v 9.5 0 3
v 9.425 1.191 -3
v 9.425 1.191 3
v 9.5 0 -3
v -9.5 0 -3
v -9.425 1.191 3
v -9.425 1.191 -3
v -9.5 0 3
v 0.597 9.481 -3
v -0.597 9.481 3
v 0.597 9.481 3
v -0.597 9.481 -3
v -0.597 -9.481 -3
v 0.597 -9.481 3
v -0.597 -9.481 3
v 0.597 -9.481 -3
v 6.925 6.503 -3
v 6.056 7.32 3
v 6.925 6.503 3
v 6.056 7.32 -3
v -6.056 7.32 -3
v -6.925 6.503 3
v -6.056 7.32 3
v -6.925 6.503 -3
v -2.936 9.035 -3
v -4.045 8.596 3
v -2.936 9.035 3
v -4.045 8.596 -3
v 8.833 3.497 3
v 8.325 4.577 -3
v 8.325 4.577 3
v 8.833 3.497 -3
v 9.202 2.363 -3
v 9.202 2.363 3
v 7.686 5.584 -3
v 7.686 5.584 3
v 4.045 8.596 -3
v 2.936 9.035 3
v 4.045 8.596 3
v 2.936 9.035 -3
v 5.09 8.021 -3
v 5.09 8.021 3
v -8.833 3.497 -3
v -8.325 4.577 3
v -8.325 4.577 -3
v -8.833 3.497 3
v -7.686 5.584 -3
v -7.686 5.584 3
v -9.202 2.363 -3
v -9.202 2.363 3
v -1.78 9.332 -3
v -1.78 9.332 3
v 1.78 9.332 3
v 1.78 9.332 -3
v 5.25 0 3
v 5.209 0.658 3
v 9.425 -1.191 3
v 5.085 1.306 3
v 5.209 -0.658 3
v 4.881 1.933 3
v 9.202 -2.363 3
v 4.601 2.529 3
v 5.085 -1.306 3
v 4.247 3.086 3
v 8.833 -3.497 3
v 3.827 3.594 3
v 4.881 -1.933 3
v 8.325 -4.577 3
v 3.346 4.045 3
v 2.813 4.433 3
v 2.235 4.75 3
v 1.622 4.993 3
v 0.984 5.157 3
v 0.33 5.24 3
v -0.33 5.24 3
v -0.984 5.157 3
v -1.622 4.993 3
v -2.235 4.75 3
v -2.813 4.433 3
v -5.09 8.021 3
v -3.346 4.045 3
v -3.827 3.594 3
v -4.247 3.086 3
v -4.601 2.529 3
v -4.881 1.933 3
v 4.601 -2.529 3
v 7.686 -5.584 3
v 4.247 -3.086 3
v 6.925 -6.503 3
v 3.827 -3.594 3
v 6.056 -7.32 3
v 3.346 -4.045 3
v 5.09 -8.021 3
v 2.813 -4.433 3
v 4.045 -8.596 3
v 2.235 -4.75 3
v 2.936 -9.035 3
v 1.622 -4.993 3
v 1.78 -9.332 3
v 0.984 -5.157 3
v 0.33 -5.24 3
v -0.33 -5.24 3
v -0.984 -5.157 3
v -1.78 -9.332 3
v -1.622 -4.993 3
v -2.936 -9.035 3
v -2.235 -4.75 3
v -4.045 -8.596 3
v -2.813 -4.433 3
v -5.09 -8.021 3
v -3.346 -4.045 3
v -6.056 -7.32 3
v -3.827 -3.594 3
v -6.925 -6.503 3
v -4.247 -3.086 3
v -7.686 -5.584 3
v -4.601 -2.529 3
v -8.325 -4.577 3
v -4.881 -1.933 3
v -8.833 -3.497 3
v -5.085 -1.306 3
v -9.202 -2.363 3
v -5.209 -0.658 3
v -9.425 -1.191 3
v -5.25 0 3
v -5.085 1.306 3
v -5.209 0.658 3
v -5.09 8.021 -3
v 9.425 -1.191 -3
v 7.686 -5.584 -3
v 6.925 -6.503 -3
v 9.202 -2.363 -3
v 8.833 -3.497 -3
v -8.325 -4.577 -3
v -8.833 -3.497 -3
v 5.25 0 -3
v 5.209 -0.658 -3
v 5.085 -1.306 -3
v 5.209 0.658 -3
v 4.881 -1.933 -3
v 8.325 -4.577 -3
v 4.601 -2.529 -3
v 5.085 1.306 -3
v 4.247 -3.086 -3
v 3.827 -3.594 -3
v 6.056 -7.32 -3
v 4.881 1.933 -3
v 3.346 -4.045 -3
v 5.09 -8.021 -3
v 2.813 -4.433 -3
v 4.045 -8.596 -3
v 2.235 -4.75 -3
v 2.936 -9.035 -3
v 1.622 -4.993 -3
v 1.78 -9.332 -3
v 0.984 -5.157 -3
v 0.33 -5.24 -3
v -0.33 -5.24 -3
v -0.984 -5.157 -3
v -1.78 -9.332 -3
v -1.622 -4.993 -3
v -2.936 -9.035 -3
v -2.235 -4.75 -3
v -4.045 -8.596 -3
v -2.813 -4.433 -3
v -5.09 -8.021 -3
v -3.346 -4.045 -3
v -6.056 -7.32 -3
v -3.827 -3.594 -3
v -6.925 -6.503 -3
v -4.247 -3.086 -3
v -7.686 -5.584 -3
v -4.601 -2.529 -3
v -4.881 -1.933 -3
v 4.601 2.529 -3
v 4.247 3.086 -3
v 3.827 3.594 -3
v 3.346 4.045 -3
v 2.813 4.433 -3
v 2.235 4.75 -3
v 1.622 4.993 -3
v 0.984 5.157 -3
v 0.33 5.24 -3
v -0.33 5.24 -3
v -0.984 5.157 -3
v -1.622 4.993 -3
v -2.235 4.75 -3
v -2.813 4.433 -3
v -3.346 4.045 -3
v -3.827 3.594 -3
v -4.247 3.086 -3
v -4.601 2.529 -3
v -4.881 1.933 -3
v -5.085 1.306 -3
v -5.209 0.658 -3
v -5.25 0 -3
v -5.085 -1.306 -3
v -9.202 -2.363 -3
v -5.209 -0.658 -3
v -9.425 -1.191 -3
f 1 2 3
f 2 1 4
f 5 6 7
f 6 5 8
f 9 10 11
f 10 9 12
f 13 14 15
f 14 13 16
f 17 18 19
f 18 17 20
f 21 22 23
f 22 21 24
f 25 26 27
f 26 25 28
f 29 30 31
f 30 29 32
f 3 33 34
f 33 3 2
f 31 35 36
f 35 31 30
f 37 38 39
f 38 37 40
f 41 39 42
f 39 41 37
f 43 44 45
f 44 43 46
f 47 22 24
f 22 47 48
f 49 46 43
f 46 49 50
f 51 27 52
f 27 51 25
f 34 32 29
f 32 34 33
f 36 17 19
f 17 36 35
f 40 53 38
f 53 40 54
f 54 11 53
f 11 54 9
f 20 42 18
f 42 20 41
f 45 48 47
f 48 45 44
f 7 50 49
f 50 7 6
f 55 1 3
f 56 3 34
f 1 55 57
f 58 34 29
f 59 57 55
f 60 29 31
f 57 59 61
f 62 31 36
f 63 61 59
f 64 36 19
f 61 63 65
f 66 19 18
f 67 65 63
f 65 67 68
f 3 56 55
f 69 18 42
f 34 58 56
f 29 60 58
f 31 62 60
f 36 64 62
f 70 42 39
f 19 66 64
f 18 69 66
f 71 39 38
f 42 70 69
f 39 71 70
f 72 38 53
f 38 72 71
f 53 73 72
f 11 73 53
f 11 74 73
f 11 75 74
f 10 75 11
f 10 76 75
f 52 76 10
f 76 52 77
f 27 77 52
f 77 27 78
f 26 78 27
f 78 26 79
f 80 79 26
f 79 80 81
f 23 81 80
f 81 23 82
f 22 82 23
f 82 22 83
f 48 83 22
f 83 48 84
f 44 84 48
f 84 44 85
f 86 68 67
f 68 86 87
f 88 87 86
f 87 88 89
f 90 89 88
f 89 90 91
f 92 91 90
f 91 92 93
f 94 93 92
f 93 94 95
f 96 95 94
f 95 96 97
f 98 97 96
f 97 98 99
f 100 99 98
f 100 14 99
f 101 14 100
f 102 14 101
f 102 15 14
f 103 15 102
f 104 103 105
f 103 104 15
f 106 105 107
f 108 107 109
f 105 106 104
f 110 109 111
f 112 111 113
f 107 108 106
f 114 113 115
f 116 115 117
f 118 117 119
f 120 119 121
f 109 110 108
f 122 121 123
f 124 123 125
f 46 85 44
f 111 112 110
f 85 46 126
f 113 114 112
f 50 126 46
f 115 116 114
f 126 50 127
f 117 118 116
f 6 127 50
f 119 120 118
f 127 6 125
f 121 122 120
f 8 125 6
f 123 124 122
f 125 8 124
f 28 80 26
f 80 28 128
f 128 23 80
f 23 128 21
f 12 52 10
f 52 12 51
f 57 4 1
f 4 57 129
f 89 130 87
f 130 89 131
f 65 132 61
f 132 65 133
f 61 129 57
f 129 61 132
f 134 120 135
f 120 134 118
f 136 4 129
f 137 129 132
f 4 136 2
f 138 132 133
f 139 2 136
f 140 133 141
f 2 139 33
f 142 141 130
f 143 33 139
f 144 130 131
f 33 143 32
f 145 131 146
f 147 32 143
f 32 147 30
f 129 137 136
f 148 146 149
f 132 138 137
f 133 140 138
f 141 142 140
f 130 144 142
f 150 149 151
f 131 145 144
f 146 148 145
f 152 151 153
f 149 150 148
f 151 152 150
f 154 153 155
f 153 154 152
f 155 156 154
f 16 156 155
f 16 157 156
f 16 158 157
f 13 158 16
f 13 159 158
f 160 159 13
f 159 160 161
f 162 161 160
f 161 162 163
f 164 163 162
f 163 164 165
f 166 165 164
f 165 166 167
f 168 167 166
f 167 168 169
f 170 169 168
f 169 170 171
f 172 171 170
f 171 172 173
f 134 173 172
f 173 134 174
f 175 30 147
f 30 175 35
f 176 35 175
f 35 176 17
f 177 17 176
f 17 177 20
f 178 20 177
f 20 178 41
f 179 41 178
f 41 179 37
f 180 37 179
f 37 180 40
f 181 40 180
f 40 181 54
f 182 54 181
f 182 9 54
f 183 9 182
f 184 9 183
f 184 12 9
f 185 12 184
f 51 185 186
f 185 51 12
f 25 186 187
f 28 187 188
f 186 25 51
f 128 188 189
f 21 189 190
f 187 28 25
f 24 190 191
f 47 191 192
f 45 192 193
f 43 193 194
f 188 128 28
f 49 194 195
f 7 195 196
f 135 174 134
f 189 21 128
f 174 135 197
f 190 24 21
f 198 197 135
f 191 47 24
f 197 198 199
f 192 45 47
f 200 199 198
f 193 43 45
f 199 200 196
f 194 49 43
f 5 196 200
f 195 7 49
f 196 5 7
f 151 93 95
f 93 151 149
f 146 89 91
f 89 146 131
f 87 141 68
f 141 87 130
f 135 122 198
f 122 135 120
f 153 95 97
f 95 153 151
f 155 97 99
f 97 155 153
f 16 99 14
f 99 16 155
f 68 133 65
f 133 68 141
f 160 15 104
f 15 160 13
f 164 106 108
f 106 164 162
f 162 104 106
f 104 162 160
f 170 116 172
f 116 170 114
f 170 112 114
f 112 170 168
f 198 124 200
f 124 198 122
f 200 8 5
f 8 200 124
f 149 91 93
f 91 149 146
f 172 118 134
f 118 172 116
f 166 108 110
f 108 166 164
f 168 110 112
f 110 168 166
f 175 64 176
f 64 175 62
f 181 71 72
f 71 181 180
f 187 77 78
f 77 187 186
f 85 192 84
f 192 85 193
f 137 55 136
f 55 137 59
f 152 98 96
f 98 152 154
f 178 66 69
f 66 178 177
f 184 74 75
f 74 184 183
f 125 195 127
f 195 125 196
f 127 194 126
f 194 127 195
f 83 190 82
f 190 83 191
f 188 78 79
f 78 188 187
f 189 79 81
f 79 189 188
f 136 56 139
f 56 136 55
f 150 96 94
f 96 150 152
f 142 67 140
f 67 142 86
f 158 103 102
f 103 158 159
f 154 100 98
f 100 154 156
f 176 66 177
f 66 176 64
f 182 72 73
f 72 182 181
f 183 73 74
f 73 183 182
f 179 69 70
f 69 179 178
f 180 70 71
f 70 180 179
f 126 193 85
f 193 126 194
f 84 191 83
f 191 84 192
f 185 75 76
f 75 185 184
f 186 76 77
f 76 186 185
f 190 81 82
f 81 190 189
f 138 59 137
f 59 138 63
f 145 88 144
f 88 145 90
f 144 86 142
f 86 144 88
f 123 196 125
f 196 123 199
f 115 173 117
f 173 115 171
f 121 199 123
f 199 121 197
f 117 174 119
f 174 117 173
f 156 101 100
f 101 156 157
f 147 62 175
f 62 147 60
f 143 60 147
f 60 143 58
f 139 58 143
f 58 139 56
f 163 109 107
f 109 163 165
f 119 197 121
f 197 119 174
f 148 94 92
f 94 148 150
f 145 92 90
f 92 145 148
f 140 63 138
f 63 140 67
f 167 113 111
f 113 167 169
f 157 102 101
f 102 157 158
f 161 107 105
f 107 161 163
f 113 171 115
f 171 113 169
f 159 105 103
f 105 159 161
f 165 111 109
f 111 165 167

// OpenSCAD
$fn = 50;


difference() {
	union() {
		translate(v = [0, 0, -3.0000000000]) {
			cylinder(h = 6, r = 9.5000000000);
		}
	}
	union() {
		translate(v = [0, 0, -100.0000000000]) {
			cylinder(h = 200, r = 5.2500000000);
		}
	}
}
